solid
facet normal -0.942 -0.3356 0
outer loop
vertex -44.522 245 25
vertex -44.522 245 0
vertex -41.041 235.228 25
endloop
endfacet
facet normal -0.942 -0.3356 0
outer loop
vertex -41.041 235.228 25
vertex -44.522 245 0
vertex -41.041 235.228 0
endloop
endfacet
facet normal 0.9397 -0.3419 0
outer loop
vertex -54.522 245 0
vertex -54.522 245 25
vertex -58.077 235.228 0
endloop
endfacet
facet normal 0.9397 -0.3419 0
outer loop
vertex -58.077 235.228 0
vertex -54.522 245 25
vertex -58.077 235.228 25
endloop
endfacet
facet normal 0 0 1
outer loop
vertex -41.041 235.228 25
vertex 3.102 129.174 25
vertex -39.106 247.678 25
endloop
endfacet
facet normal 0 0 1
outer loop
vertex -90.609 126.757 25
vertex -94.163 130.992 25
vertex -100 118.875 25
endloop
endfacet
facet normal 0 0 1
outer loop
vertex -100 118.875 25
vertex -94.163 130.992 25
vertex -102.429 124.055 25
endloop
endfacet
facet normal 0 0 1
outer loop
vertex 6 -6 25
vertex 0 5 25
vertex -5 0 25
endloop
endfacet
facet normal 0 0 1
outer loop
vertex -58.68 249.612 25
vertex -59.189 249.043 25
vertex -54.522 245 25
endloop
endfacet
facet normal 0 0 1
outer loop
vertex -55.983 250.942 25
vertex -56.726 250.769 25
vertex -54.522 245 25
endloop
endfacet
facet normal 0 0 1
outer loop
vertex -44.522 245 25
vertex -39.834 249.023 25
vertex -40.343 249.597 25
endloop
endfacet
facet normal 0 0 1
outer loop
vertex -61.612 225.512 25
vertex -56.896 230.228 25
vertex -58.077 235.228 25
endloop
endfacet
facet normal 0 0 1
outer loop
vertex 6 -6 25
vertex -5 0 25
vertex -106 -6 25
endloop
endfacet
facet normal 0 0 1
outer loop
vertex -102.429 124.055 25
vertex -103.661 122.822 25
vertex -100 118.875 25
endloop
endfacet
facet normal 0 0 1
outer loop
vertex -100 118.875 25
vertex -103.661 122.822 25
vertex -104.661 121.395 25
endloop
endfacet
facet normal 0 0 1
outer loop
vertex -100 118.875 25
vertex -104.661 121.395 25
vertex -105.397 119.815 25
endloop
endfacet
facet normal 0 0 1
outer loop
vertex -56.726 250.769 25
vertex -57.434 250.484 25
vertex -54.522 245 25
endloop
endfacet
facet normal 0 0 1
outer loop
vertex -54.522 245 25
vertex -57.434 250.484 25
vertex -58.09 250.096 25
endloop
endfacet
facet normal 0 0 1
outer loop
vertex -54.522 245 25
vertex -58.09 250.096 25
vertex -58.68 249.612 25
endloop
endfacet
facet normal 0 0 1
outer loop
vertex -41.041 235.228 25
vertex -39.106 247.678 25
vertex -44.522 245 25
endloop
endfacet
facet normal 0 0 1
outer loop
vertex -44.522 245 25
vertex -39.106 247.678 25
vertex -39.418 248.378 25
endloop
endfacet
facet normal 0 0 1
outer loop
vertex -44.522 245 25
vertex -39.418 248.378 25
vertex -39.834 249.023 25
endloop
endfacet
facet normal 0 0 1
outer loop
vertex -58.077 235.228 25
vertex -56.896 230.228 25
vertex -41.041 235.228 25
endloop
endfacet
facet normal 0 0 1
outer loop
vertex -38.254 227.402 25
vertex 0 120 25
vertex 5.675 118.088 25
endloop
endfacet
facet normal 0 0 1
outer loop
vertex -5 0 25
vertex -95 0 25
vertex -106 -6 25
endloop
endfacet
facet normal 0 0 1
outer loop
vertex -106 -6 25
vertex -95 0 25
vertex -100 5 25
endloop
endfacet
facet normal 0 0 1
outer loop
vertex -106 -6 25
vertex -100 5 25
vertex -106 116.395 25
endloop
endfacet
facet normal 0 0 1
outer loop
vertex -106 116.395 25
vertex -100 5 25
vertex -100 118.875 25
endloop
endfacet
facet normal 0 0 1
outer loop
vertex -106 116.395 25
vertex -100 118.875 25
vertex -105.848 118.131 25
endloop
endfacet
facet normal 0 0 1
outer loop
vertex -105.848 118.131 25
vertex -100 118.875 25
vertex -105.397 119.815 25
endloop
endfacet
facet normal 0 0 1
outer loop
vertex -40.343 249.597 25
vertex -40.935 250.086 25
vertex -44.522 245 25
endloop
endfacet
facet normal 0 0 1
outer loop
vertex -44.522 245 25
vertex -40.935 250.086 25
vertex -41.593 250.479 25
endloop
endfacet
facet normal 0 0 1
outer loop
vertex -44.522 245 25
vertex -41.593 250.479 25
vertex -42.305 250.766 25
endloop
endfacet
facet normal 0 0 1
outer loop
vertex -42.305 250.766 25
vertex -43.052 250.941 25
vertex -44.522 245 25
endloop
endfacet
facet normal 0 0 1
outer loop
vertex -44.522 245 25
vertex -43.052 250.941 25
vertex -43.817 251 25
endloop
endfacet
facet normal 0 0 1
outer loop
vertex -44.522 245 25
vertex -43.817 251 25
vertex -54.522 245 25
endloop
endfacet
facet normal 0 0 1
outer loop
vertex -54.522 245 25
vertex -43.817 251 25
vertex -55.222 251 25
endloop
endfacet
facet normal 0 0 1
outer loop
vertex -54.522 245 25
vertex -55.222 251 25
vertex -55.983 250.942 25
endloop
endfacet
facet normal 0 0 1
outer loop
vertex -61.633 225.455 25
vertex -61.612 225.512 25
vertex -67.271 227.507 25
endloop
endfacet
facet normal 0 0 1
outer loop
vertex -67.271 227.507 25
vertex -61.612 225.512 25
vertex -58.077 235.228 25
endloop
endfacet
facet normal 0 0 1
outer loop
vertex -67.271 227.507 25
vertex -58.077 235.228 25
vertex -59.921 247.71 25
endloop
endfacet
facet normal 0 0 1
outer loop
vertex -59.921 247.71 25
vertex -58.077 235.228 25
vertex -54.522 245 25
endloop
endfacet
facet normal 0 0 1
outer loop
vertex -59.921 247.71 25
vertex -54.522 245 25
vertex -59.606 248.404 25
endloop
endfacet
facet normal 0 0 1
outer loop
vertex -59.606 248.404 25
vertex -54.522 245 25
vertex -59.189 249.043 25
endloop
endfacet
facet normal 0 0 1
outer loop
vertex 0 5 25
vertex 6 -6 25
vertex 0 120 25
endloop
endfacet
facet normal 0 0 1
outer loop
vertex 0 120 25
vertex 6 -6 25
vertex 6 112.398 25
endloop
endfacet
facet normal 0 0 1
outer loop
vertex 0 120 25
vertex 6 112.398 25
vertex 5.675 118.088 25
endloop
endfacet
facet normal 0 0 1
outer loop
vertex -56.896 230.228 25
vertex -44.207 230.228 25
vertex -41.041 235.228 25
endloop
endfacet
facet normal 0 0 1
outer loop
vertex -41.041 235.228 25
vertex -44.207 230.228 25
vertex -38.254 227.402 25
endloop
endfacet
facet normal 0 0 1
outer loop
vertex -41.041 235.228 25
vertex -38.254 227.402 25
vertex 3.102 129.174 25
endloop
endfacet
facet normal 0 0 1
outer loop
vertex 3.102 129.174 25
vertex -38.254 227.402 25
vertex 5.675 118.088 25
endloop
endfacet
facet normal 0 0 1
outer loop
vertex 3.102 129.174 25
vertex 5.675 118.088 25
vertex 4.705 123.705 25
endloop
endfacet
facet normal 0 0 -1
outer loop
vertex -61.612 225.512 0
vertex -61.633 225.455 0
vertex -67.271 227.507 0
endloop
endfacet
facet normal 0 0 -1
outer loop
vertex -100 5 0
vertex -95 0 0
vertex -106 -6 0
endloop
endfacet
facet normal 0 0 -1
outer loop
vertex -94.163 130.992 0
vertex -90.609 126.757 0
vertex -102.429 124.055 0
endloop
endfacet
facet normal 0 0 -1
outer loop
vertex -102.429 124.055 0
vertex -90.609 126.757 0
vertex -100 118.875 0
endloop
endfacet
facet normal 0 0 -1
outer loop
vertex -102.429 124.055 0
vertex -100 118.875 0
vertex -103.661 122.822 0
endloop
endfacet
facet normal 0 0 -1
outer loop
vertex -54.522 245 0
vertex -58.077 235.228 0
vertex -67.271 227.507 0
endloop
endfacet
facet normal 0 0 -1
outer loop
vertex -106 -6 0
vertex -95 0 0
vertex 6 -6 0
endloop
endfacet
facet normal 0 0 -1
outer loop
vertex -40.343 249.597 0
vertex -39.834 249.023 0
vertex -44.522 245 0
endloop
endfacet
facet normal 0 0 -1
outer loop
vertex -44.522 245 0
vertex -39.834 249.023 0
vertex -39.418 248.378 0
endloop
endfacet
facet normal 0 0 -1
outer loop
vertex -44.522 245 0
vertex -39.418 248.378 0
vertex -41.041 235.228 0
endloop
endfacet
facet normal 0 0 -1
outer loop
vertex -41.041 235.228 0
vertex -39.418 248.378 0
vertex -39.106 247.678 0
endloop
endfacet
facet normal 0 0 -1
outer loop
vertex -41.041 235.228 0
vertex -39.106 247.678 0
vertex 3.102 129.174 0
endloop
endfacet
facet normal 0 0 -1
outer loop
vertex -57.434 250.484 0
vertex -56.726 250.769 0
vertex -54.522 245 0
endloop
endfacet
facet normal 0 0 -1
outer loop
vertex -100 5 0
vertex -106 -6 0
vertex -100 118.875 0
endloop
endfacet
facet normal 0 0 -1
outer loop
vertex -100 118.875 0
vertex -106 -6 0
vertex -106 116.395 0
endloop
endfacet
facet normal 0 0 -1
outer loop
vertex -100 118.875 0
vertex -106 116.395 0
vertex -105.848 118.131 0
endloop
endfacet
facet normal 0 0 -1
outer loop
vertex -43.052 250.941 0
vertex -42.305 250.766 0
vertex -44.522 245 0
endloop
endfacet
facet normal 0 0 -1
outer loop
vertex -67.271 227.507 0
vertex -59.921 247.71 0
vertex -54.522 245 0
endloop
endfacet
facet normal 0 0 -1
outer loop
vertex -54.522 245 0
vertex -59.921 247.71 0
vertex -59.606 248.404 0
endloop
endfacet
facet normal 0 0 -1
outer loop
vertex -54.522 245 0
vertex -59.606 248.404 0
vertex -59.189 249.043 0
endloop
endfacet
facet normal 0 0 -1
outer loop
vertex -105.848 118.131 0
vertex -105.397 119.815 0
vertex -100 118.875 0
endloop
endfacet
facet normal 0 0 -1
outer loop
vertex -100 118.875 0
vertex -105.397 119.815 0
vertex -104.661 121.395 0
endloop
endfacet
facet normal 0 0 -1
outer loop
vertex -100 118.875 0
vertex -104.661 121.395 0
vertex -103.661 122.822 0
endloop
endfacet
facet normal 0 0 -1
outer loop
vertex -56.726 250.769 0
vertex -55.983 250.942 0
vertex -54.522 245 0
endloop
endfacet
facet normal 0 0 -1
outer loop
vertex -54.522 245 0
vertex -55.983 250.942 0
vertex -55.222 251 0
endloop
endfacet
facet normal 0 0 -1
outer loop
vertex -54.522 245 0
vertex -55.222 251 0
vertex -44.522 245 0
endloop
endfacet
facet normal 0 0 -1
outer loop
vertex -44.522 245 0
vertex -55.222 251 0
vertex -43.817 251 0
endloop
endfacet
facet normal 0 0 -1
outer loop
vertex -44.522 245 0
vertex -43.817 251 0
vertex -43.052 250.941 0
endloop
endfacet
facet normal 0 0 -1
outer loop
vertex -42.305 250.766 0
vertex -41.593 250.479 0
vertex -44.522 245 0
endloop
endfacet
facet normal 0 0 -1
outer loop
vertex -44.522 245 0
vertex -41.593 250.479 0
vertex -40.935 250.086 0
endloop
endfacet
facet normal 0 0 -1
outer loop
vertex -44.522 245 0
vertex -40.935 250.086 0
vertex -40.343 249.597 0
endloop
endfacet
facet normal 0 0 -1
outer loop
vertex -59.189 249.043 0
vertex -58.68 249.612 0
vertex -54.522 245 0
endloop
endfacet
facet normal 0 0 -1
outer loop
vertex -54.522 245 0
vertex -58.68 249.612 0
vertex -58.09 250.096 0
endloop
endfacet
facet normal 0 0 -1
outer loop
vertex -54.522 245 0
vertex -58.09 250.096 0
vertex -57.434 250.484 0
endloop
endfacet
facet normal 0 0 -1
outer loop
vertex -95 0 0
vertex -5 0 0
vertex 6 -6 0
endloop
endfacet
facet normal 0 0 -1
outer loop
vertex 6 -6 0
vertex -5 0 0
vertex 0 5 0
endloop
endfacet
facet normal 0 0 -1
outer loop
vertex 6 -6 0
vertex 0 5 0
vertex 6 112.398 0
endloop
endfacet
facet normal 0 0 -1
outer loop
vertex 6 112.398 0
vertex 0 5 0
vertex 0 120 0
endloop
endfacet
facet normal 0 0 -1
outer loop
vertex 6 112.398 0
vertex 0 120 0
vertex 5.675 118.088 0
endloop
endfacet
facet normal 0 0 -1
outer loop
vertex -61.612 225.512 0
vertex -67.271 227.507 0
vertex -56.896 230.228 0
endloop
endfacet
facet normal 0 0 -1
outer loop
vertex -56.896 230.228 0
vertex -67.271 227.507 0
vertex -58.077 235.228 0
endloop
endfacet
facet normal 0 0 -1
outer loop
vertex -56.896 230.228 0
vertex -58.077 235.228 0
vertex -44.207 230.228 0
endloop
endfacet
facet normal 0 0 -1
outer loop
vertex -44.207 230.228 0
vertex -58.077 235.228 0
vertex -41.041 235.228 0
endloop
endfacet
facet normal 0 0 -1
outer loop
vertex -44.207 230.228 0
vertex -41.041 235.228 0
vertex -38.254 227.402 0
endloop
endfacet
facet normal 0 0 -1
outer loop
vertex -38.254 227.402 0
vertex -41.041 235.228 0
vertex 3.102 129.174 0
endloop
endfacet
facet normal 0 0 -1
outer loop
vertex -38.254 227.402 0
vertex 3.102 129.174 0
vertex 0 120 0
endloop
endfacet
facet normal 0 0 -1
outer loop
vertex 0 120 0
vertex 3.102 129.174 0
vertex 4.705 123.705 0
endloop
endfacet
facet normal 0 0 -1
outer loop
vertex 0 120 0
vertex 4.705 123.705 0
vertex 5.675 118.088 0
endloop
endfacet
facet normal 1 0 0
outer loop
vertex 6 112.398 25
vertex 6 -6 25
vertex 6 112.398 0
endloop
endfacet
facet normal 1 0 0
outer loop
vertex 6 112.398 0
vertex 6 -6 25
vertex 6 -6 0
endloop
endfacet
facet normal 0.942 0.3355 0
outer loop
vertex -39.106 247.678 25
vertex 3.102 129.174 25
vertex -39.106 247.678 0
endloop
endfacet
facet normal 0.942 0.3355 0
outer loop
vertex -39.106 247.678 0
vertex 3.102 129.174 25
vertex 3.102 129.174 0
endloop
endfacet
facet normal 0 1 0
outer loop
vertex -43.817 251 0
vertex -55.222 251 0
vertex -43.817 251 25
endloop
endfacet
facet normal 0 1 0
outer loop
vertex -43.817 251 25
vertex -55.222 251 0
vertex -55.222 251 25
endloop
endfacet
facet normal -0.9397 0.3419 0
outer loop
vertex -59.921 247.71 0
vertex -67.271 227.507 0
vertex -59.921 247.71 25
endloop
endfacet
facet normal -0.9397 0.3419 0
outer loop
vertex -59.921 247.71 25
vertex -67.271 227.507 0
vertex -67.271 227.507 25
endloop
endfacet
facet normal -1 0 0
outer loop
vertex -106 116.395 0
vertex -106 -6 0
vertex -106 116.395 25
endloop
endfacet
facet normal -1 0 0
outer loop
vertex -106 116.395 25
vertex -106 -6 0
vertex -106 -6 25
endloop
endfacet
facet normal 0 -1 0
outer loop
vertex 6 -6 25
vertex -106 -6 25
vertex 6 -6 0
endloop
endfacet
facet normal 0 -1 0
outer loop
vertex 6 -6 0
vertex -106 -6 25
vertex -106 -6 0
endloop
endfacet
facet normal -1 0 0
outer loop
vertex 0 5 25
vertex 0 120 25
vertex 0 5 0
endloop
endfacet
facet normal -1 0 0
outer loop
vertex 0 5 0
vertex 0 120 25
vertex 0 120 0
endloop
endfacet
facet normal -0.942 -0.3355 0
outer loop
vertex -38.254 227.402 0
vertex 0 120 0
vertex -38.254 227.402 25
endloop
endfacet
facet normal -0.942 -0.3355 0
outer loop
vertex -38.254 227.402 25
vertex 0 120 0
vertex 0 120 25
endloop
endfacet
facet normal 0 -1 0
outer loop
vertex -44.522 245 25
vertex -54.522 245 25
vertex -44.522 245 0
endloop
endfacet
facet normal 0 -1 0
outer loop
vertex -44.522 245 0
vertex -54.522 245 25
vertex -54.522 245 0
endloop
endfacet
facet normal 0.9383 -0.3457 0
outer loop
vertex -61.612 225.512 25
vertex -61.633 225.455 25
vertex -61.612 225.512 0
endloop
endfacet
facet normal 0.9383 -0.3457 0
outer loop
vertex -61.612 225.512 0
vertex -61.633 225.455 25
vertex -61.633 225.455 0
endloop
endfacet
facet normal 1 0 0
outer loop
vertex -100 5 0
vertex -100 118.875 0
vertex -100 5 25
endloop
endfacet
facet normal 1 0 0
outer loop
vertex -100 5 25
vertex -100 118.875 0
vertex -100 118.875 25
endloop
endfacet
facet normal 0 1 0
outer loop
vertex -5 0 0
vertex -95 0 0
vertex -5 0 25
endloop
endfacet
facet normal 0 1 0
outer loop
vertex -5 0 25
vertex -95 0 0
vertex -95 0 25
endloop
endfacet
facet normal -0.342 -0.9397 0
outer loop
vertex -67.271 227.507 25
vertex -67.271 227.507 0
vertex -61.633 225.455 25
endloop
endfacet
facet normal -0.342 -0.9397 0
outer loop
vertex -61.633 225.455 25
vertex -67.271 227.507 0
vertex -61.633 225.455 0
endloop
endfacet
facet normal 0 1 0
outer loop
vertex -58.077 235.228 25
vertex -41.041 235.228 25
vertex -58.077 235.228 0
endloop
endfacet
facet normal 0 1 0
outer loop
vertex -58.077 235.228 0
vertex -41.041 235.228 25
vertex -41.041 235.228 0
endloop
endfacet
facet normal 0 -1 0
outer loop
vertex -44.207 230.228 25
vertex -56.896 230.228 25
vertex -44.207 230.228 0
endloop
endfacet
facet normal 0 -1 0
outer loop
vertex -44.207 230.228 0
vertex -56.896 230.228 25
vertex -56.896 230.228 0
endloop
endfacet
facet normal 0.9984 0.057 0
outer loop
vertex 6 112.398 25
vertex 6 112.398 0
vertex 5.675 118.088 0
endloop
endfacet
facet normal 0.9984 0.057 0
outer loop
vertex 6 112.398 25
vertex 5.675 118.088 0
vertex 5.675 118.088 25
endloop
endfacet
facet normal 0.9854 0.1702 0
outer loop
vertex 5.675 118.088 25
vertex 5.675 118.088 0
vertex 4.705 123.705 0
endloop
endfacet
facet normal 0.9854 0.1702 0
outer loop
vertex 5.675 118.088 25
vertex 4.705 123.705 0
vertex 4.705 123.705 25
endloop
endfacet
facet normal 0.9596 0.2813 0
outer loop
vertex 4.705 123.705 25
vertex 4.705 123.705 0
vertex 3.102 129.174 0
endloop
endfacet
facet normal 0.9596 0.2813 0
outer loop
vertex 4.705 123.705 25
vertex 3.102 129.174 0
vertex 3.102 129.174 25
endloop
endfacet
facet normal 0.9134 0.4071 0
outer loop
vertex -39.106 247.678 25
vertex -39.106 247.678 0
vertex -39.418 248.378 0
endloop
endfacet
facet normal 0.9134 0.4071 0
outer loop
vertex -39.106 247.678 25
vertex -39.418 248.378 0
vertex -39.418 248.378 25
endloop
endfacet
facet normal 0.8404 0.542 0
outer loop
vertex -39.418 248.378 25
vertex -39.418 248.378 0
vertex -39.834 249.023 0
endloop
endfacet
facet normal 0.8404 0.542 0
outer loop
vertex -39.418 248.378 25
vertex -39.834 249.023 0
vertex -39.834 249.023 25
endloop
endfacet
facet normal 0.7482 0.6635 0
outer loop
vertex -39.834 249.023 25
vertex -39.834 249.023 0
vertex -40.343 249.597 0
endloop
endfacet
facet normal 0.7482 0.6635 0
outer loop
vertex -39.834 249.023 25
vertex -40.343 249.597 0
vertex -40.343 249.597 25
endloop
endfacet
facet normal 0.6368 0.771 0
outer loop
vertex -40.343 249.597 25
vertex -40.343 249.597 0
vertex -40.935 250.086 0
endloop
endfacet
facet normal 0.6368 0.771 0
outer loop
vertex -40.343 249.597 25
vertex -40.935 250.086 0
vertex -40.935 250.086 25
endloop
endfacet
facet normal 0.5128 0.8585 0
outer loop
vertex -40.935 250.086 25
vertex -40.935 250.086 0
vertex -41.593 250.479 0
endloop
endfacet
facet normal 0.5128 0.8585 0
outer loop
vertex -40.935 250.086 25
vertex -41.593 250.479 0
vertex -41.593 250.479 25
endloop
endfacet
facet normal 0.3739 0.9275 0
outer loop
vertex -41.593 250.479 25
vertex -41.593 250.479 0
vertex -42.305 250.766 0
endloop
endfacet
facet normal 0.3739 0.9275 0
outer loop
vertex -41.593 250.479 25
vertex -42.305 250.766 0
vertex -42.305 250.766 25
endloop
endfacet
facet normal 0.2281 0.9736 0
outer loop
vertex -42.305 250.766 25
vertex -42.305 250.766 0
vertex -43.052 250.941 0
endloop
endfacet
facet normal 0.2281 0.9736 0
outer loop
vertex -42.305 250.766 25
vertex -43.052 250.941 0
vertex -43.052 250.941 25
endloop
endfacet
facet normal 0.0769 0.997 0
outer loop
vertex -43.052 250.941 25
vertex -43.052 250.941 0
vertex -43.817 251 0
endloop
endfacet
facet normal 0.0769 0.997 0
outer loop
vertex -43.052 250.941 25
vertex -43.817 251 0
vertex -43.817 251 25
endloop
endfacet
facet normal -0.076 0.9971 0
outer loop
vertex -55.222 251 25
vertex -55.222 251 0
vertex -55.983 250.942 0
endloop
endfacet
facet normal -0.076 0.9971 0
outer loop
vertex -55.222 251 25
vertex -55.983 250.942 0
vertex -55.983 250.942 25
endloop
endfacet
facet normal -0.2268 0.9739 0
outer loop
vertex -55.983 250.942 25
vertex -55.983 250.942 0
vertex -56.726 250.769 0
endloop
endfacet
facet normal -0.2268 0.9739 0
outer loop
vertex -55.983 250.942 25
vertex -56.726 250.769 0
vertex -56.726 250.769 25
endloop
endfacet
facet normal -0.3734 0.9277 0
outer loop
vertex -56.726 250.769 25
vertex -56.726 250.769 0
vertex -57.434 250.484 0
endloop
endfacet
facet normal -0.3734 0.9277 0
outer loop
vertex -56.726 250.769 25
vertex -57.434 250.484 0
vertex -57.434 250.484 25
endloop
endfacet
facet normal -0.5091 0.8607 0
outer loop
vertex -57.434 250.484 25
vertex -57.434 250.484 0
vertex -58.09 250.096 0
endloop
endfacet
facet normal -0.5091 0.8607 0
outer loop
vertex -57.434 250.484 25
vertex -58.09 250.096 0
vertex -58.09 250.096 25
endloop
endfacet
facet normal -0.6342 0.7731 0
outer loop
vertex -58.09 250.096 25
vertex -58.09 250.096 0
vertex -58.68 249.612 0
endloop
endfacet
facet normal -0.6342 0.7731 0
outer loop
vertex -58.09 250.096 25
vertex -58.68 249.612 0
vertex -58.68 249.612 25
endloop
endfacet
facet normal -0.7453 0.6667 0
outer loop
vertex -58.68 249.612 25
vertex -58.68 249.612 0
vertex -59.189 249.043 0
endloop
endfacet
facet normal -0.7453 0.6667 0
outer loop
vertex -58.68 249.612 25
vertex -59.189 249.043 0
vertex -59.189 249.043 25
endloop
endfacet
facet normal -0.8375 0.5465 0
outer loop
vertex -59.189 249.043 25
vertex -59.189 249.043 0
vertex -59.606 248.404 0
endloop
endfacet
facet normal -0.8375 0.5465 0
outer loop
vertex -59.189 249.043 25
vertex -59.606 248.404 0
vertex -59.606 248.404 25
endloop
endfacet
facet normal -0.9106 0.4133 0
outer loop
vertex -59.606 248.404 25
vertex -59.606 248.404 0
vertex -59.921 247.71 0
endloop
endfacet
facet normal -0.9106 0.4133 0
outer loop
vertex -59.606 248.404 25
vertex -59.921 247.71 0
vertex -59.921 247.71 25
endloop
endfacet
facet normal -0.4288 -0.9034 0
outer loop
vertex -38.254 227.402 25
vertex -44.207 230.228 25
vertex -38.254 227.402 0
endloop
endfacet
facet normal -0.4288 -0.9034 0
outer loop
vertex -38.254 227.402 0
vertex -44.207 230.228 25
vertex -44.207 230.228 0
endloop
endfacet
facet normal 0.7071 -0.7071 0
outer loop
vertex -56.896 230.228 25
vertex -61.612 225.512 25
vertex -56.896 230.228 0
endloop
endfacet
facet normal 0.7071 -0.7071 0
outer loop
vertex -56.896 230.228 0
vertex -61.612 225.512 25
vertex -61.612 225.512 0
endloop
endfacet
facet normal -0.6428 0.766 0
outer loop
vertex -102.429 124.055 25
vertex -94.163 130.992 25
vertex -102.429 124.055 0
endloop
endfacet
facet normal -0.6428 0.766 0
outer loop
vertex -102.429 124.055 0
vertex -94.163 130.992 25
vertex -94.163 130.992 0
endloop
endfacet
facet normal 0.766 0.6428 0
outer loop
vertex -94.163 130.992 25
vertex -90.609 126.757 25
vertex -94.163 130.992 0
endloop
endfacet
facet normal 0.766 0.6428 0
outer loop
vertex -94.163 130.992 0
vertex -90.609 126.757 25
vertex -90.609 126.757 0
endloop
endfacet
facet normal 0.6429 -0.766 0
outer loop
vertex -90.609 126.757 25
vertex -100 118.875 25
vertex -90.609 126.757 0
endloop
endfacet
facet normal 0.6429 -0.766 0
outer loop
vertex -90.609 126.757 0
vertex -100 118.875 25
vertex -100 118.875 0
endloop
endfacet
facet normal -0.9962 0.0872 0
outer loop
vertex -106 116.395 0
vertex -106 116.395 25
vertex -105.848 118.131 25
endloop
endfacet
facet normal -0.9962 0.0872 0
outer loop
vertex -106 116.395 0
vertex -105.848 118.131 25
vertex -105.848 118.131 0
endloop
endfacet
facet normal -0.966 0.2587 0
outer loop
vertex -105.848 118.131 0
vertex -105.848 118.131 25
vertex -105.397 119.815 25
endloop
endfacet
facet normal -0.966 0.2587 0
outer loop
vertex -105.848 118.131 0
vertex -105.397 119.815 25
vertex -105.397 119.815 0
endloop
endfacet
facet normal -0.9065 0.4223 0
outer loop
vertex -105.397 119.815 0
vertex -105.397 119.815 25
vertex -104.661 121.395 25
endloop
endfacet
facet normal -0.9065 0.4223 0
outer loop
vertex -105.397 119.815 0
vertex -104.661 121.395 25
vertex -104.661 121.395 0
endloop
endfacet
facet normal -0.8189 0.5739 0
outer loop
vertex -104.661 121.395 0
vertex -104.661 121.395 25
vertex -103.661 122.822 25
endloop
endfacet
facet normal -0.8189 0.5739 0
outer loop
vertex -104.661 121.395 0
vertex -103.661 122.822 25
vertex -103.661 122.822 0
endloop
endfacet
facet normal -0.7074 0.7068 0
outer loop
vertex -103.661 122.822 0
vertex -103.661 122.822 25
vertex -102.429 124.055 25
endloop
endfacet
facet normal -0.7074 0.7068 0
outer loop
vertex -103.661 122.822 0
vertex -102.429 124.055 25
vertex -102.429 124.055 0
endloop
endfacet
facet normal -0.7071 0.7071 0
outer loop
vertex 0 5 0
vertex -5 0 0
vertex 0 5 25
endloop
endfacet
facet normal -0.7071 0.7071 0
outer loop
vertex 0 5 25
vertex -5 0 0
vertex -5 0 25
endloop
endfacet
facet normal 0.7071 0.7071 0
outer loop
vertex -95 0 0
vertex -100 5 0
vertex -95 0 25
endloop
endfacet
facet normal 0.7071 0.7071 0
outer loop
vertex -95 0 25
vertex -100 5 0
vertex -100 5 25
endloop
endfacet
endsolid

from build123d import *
from OCP.BRepFilletAPI import BRepFilletAPI_MakeChamfer

# Parameters (mm, degrees)
EXTRUDE_1_DEPTH     = 25
SKETCH_2_W          = 25
SKETCH_2_H          = 113.275398007
CUT_EXTRUDE_1_DEPTH = 10
EXTRUDE_1_2_DEPTH   = 25
FILLET_1_R          = 50
FILLET_2_R          = 5
CHAMFER_1_SIZE      = 3
CHAMFER_1_SIZE2     = 5.018091596
CHAMFER_1_SIZE2_2   = 4.946391741
EXTRUDE_2_DEPTH     = 25
FILLET_3_R          = 10
CHAMFER_2_SIZE      = 5


with BuildPart() as part:
    # 草图1 → Extrude 1 (new body)
    with BuildSketch(Plane.XY):
        Polygon((-40.289701428, 251), (6, 121.036629463), (6, -6), (-106, -6), (-106, 121.057565217), (-58.723691593, 251), align=None)
        Polygon((-44.521873006, 245), (0, 120), (0, 0), (-100, 0), (-100, 120), (-54.521873006, 245), align=None, mode=Mode.SUBTRACT)
    extrude(amount=EXTRUDE_1_DEPTH)

    # 草图2 → 切除-拉伸1 (cut)
    with BuildSketch(Plane(origin=(-132.504349732, 48.208397155, 0), x_dir=(0, 0, 1), z_dir=(-0.9397364726914574, 0.34189963716479416, 0))):
        with Locations((12.5, 134.158546794)):
            Rectangle(SKETCH_2_W, SKETCH_2_H)
    extrude(amount=-CUT_EXTRUDE_1_DEPTH, mode=Mode.SUBTRACT)

    # 草图4 → Extrude 1 2 (add)
    with BuildSketch(Plane.XY.offset(25)):
        Polygon((-58.077318346, 235.22759518), (-41.041186875, 235.22759518), (-39.260311955, 230.22759518), (-59.896443426, 230.22759518), align=None)
    extrude(amount=-EXTRUDE_1_2_DEPTH)

    # 圆角1
    fillet_1_edges = [part.edges().sort_by_distance(p)[0] for p in [
        (6, 121.036629463, 12.5),
    ]]
    fillet(fillet_1_edges, radius=FILLET_1_R)

    # 圆角2
    fillet_2_edges = [part.edges().sort_by_distance(p)[0] for p in [
        (-58.723691593, 251, 12.5),
        (-40.289701428, 251, 12.5),
    ]]
    fillet(fillet_2_edges, radius=FILLET_2_R)

    # 倒角1: one chamfer whose edges measure the first distance from different faces: ONE call of the kernel's chamfer builder (chamfer() names one face for all edges)
    chamfer_1_edges_1 = [part.edges().sort_by_distance(p)[0] for p in [
        (-59.896443426, 230.22759518, 12.5),
    ]]
    chamfer_1_side_1 = [part.faces().sort_by_distance(p)[0] for p in [
        (-49.57837769, 230.22759518, 12.5),
    ]]
    chamfer_1_edges_2 = [part.edges().sort_by_distance(p)[0] for p in [
        (-39.260311955, 230.22759518, 12.5),
    ]]
    chamfer_1_side_2 = [part.faces().sort_by_distance(p)[0] for p in [
        (-19.630155978, 175.11379759, 12.5),
    ]]
    chamfer_1 = BRepFilletAPI_MakeChamfer(part.part.solid().wrapped)
    for e in chamfer_1_edges_1:
        chamfer_1.Add(CHAMFER_1_SIZE, CHAMFER_1_SIZE2, e.wrapped, chamfer_1_side_1[0].wrapped)  # the first distance lies on this face
    for e in chamfer_1_edges_2:
        chamfer_1.Add(CHAMFER_1_SIZE, CHAMFER_1_SIZE2_2, e.wrapped, chamfer_1_side_2[0].wrapped)  # the first distance lies on this face
    add(Compound.cast(chamfer_1.Shape()), mode=Mode.REPLACE)

    # 草图5 → 凸台-拉伸2 (add)
    with BuildSketch(Plane.XY.offset(25)):
        Polygon((-106, 121.057565217), (-94.163375331, 130.992259513), (-90.60862045, 126.756970729), (-100, 118.874615121), align=None)
    extrude(amount=-EXTRUDE_2_DEPTH)

    # 圆角3
    fillet_3_edges = [part.edges().sort_by_distance(p)[0] for p in [
        (-106, 121.057565217, 12.5),
    ]]
    fillet(fillet_3_edges, radius=FILLET_3_R)

    # 倒角2
    chamfer_2_edges = [part.edges().sort_by_distance(p)[0] for p in [
        (0, 0, 12.5),
        (-100, 0, 12.5),
    ]]
    chamfer(chamfer_2_edges, length=CHAMFER_2_SIZE)


solid = part.part
